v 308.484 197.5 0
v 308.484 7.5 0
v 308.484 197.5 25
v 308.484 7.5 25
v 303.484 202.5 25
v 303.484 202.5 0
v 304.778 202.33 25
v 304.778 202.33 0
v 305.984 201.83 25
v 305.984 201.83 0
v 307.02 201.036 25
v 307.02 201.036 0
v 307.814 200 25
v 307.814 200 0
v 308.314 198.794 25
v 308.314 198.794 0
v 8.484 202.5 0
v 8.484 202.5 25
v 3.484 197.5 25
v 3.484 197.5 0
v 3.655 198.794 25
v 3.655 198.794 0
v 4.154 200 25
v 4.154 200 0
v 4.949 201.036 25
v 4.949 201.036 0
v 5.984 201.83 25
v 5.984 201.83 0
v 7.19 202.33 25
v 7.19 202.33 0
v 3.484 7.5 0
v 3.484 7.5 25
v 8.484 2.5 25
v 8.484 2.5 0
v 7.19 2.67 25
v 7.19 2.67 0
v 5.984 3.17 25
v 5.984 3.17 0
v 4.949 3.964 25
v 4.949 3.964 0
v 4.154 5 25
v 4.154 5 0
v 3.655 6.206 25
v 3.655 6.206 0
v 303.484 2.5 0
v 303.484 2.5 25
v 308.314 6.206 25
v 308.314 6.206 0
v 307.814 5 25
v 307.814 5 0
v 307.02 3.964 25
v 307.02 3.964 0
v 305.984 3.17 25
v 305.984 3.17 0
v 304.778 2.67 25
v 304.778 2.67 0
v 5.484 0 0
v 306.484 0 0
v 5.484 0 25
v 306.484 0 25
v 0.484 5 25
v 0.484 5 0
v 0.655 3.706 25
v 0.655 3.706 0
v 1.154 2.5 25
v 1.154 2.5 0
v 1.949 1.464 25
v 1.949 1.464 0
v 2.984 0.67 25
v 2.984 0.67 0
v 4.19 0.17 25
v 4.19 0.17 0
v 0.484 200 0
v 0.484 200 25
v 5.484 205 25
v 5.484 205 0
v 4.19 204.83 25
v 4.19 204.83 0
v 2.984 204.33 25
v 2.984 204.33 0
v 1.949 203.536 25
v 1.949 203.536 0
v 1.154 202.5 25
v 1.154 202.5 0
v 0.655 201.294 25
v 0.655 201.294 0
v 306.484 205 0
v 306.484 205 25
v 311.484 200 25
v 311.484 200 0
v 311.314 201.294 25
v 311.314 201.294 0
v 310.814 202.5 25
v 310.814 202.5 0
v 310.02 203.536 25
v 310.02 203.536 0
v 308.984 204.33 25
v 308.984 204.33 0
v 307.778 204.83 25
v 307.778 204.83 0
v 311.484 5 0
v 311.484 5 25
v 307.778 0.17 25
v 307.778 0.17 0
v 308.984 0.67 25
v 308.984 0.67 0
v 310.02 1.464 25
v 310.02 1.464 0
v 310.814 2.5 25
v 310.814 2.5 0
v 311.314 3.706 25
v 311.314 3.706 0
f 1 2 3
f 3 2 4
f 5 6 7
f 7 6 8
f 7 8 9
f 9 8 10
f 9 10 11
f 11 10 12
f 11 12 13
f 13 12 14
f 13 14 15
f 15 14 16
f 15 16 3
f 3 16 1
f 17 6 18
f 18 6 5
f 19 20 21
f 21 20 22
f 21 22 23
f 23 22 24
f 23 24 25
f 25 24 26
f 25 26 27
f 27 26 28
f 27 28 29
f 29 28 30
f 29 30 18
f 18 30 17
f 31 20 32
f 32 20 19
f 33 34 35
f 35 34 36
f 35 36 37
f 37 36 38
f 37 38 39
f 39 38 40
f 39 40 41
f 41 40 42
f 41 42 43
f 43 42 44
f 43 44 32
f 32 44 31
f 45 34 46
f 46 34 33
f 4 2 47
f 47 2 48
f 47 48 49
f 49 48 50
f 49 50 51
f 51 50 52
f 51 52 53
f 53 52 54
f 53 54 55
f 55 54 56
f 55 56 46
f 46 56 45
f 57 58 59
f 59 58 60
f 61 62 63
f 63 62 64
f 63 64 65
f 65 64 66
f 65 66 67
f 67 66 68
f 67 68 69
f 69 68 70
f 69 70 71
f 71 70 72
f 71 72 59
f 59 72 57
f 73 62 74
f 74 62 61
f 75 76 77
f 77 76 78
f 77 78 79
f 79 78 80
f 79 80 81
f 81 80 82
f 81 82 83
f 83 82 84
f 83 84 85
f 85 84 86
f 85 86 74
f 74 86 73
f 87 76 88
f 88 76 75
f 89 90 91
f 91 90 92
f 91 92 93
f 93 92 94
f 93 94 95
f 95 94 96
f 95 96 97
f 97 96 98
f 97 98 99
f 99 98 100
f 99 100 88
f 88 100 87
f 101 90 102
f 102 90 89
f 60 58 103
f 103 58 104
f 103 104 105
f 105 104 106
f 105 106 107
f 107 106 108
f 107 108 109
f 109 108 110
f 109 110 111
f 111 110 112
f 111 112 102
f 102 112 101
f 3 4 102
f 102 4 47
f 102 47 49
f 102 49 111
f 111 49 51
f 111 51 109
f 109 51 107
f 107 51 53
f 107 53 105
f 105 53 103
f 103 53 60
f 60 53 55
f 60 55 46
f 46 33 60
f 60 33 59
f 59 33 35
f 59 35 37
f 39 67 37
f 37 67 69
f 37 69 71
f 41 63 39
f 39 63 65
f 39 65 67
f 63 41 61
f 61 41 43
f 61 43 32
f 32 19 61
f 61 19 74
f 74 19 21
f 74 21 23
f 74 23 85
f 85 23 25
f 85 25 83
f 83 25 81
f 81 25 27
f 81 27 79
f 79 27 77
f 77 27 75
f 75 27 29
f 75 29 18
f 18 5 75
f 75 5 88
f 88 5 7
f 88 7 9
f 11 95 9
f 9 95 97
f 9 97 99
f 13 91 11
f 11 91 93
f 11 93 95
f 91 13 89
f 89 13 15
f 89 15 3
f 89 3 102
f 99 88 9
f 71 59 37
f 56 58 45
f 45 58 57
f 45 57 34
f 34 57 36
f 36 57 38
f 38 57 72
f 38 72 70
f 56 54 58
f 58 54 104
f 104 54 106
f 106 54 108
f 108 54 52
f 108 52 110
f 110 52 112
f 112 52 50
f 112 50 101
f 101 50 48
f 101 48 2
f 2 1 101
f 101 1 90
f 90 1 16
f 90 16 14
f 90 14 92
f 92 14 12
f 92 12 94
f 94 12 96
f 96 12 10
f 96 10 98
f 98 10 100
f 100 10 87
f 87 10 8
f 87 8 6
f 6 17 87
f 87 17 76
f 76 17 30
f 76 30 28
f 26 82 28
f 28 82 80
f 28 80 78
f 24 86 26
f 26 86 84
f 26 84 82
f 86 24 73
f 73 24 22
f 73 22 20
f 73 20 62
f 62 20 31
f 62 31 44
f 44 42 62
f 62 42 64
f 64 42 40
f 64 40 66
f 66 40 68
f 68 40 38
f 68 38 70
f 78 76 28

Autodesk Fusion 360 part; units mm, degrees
sketch "Sketch1" plane through (0, 0, 0) normal (0, 0, 1) x (1, 0, 0)
  line L0 (5.4842, 0) -> (306.4842, 0)
  line L1 (311.4842, 5) -> (311.4842, 200)
  line L2 (306.4842, 205) -> (5.4842, 205)
  line L3 (0.4842, 200) -> (0.4842, 5)
  line L4 (8.4842, 2.5) -> (303.4842, 2.5)
  line L5 (308.4842, 7.5) -> (308.4842, 197.5)
  line L6 (303.4842, 202.5) -> (8.4842, 202.5)
  line L7 (3.4842, 197.5) -> (3.4842, 7.5)
  arc A0 (8.4842, 202.5) -> (3.4842, 197.5) centre (8.4842, 197.5) ccw
  arc A1 (5.4842, 205) -> (0.4842, 200) centre (5.4842, 200) ccw
  arc A2 (308.4842, 197.5) -> (303.4842, 202.5) centre (303.4842, 197.5) ccw
  arc A3 (311.4842, 200) -> (306.4842, 205) centre (306.4842, 200) ccw
  arc A4 (3.4842, 7.5) -> (8.4842, 2.5) centre (8.4842, 7.5) ccw
  arc A5 (0.4842, 5) -> (5.4842, 0) centre (5.4842, 5) ccw
  arc A6 (303.4842, 2.5) -> (308.4842, 7.5) centre (303.4842, 7.5) ccw
  arc A7 (306.4842, 0) -> (311.4842, 5) centre (306.4842, 5) ccw
  point P0 (0.4842, 0)
  point P1 (311.4842, 0)
  point P2 (3.4842, 2.5)
  point P3 (308.4842, 2.5)
  dimension "d1" = 311
  dimension "d2" = 205
  dimension "d3" = 305
  dimension "d4" = 200
  dimension "d5" = 2.5
  dimension "d6" = 2.5
  dimension "d7" = 3
  dimension "d8" = 3
  dimension "d9" = 5
  dimension "d10" = 5
  dimension "d11" = 5
  dimension "d12" = 5
  dimension "d13" = 5
  dimension "d14" = 5
  dimension "d15" = 5
  dimension "d16" = 5
extrude "Extrude1" add sketch "Sketch1" along normal blind 25
